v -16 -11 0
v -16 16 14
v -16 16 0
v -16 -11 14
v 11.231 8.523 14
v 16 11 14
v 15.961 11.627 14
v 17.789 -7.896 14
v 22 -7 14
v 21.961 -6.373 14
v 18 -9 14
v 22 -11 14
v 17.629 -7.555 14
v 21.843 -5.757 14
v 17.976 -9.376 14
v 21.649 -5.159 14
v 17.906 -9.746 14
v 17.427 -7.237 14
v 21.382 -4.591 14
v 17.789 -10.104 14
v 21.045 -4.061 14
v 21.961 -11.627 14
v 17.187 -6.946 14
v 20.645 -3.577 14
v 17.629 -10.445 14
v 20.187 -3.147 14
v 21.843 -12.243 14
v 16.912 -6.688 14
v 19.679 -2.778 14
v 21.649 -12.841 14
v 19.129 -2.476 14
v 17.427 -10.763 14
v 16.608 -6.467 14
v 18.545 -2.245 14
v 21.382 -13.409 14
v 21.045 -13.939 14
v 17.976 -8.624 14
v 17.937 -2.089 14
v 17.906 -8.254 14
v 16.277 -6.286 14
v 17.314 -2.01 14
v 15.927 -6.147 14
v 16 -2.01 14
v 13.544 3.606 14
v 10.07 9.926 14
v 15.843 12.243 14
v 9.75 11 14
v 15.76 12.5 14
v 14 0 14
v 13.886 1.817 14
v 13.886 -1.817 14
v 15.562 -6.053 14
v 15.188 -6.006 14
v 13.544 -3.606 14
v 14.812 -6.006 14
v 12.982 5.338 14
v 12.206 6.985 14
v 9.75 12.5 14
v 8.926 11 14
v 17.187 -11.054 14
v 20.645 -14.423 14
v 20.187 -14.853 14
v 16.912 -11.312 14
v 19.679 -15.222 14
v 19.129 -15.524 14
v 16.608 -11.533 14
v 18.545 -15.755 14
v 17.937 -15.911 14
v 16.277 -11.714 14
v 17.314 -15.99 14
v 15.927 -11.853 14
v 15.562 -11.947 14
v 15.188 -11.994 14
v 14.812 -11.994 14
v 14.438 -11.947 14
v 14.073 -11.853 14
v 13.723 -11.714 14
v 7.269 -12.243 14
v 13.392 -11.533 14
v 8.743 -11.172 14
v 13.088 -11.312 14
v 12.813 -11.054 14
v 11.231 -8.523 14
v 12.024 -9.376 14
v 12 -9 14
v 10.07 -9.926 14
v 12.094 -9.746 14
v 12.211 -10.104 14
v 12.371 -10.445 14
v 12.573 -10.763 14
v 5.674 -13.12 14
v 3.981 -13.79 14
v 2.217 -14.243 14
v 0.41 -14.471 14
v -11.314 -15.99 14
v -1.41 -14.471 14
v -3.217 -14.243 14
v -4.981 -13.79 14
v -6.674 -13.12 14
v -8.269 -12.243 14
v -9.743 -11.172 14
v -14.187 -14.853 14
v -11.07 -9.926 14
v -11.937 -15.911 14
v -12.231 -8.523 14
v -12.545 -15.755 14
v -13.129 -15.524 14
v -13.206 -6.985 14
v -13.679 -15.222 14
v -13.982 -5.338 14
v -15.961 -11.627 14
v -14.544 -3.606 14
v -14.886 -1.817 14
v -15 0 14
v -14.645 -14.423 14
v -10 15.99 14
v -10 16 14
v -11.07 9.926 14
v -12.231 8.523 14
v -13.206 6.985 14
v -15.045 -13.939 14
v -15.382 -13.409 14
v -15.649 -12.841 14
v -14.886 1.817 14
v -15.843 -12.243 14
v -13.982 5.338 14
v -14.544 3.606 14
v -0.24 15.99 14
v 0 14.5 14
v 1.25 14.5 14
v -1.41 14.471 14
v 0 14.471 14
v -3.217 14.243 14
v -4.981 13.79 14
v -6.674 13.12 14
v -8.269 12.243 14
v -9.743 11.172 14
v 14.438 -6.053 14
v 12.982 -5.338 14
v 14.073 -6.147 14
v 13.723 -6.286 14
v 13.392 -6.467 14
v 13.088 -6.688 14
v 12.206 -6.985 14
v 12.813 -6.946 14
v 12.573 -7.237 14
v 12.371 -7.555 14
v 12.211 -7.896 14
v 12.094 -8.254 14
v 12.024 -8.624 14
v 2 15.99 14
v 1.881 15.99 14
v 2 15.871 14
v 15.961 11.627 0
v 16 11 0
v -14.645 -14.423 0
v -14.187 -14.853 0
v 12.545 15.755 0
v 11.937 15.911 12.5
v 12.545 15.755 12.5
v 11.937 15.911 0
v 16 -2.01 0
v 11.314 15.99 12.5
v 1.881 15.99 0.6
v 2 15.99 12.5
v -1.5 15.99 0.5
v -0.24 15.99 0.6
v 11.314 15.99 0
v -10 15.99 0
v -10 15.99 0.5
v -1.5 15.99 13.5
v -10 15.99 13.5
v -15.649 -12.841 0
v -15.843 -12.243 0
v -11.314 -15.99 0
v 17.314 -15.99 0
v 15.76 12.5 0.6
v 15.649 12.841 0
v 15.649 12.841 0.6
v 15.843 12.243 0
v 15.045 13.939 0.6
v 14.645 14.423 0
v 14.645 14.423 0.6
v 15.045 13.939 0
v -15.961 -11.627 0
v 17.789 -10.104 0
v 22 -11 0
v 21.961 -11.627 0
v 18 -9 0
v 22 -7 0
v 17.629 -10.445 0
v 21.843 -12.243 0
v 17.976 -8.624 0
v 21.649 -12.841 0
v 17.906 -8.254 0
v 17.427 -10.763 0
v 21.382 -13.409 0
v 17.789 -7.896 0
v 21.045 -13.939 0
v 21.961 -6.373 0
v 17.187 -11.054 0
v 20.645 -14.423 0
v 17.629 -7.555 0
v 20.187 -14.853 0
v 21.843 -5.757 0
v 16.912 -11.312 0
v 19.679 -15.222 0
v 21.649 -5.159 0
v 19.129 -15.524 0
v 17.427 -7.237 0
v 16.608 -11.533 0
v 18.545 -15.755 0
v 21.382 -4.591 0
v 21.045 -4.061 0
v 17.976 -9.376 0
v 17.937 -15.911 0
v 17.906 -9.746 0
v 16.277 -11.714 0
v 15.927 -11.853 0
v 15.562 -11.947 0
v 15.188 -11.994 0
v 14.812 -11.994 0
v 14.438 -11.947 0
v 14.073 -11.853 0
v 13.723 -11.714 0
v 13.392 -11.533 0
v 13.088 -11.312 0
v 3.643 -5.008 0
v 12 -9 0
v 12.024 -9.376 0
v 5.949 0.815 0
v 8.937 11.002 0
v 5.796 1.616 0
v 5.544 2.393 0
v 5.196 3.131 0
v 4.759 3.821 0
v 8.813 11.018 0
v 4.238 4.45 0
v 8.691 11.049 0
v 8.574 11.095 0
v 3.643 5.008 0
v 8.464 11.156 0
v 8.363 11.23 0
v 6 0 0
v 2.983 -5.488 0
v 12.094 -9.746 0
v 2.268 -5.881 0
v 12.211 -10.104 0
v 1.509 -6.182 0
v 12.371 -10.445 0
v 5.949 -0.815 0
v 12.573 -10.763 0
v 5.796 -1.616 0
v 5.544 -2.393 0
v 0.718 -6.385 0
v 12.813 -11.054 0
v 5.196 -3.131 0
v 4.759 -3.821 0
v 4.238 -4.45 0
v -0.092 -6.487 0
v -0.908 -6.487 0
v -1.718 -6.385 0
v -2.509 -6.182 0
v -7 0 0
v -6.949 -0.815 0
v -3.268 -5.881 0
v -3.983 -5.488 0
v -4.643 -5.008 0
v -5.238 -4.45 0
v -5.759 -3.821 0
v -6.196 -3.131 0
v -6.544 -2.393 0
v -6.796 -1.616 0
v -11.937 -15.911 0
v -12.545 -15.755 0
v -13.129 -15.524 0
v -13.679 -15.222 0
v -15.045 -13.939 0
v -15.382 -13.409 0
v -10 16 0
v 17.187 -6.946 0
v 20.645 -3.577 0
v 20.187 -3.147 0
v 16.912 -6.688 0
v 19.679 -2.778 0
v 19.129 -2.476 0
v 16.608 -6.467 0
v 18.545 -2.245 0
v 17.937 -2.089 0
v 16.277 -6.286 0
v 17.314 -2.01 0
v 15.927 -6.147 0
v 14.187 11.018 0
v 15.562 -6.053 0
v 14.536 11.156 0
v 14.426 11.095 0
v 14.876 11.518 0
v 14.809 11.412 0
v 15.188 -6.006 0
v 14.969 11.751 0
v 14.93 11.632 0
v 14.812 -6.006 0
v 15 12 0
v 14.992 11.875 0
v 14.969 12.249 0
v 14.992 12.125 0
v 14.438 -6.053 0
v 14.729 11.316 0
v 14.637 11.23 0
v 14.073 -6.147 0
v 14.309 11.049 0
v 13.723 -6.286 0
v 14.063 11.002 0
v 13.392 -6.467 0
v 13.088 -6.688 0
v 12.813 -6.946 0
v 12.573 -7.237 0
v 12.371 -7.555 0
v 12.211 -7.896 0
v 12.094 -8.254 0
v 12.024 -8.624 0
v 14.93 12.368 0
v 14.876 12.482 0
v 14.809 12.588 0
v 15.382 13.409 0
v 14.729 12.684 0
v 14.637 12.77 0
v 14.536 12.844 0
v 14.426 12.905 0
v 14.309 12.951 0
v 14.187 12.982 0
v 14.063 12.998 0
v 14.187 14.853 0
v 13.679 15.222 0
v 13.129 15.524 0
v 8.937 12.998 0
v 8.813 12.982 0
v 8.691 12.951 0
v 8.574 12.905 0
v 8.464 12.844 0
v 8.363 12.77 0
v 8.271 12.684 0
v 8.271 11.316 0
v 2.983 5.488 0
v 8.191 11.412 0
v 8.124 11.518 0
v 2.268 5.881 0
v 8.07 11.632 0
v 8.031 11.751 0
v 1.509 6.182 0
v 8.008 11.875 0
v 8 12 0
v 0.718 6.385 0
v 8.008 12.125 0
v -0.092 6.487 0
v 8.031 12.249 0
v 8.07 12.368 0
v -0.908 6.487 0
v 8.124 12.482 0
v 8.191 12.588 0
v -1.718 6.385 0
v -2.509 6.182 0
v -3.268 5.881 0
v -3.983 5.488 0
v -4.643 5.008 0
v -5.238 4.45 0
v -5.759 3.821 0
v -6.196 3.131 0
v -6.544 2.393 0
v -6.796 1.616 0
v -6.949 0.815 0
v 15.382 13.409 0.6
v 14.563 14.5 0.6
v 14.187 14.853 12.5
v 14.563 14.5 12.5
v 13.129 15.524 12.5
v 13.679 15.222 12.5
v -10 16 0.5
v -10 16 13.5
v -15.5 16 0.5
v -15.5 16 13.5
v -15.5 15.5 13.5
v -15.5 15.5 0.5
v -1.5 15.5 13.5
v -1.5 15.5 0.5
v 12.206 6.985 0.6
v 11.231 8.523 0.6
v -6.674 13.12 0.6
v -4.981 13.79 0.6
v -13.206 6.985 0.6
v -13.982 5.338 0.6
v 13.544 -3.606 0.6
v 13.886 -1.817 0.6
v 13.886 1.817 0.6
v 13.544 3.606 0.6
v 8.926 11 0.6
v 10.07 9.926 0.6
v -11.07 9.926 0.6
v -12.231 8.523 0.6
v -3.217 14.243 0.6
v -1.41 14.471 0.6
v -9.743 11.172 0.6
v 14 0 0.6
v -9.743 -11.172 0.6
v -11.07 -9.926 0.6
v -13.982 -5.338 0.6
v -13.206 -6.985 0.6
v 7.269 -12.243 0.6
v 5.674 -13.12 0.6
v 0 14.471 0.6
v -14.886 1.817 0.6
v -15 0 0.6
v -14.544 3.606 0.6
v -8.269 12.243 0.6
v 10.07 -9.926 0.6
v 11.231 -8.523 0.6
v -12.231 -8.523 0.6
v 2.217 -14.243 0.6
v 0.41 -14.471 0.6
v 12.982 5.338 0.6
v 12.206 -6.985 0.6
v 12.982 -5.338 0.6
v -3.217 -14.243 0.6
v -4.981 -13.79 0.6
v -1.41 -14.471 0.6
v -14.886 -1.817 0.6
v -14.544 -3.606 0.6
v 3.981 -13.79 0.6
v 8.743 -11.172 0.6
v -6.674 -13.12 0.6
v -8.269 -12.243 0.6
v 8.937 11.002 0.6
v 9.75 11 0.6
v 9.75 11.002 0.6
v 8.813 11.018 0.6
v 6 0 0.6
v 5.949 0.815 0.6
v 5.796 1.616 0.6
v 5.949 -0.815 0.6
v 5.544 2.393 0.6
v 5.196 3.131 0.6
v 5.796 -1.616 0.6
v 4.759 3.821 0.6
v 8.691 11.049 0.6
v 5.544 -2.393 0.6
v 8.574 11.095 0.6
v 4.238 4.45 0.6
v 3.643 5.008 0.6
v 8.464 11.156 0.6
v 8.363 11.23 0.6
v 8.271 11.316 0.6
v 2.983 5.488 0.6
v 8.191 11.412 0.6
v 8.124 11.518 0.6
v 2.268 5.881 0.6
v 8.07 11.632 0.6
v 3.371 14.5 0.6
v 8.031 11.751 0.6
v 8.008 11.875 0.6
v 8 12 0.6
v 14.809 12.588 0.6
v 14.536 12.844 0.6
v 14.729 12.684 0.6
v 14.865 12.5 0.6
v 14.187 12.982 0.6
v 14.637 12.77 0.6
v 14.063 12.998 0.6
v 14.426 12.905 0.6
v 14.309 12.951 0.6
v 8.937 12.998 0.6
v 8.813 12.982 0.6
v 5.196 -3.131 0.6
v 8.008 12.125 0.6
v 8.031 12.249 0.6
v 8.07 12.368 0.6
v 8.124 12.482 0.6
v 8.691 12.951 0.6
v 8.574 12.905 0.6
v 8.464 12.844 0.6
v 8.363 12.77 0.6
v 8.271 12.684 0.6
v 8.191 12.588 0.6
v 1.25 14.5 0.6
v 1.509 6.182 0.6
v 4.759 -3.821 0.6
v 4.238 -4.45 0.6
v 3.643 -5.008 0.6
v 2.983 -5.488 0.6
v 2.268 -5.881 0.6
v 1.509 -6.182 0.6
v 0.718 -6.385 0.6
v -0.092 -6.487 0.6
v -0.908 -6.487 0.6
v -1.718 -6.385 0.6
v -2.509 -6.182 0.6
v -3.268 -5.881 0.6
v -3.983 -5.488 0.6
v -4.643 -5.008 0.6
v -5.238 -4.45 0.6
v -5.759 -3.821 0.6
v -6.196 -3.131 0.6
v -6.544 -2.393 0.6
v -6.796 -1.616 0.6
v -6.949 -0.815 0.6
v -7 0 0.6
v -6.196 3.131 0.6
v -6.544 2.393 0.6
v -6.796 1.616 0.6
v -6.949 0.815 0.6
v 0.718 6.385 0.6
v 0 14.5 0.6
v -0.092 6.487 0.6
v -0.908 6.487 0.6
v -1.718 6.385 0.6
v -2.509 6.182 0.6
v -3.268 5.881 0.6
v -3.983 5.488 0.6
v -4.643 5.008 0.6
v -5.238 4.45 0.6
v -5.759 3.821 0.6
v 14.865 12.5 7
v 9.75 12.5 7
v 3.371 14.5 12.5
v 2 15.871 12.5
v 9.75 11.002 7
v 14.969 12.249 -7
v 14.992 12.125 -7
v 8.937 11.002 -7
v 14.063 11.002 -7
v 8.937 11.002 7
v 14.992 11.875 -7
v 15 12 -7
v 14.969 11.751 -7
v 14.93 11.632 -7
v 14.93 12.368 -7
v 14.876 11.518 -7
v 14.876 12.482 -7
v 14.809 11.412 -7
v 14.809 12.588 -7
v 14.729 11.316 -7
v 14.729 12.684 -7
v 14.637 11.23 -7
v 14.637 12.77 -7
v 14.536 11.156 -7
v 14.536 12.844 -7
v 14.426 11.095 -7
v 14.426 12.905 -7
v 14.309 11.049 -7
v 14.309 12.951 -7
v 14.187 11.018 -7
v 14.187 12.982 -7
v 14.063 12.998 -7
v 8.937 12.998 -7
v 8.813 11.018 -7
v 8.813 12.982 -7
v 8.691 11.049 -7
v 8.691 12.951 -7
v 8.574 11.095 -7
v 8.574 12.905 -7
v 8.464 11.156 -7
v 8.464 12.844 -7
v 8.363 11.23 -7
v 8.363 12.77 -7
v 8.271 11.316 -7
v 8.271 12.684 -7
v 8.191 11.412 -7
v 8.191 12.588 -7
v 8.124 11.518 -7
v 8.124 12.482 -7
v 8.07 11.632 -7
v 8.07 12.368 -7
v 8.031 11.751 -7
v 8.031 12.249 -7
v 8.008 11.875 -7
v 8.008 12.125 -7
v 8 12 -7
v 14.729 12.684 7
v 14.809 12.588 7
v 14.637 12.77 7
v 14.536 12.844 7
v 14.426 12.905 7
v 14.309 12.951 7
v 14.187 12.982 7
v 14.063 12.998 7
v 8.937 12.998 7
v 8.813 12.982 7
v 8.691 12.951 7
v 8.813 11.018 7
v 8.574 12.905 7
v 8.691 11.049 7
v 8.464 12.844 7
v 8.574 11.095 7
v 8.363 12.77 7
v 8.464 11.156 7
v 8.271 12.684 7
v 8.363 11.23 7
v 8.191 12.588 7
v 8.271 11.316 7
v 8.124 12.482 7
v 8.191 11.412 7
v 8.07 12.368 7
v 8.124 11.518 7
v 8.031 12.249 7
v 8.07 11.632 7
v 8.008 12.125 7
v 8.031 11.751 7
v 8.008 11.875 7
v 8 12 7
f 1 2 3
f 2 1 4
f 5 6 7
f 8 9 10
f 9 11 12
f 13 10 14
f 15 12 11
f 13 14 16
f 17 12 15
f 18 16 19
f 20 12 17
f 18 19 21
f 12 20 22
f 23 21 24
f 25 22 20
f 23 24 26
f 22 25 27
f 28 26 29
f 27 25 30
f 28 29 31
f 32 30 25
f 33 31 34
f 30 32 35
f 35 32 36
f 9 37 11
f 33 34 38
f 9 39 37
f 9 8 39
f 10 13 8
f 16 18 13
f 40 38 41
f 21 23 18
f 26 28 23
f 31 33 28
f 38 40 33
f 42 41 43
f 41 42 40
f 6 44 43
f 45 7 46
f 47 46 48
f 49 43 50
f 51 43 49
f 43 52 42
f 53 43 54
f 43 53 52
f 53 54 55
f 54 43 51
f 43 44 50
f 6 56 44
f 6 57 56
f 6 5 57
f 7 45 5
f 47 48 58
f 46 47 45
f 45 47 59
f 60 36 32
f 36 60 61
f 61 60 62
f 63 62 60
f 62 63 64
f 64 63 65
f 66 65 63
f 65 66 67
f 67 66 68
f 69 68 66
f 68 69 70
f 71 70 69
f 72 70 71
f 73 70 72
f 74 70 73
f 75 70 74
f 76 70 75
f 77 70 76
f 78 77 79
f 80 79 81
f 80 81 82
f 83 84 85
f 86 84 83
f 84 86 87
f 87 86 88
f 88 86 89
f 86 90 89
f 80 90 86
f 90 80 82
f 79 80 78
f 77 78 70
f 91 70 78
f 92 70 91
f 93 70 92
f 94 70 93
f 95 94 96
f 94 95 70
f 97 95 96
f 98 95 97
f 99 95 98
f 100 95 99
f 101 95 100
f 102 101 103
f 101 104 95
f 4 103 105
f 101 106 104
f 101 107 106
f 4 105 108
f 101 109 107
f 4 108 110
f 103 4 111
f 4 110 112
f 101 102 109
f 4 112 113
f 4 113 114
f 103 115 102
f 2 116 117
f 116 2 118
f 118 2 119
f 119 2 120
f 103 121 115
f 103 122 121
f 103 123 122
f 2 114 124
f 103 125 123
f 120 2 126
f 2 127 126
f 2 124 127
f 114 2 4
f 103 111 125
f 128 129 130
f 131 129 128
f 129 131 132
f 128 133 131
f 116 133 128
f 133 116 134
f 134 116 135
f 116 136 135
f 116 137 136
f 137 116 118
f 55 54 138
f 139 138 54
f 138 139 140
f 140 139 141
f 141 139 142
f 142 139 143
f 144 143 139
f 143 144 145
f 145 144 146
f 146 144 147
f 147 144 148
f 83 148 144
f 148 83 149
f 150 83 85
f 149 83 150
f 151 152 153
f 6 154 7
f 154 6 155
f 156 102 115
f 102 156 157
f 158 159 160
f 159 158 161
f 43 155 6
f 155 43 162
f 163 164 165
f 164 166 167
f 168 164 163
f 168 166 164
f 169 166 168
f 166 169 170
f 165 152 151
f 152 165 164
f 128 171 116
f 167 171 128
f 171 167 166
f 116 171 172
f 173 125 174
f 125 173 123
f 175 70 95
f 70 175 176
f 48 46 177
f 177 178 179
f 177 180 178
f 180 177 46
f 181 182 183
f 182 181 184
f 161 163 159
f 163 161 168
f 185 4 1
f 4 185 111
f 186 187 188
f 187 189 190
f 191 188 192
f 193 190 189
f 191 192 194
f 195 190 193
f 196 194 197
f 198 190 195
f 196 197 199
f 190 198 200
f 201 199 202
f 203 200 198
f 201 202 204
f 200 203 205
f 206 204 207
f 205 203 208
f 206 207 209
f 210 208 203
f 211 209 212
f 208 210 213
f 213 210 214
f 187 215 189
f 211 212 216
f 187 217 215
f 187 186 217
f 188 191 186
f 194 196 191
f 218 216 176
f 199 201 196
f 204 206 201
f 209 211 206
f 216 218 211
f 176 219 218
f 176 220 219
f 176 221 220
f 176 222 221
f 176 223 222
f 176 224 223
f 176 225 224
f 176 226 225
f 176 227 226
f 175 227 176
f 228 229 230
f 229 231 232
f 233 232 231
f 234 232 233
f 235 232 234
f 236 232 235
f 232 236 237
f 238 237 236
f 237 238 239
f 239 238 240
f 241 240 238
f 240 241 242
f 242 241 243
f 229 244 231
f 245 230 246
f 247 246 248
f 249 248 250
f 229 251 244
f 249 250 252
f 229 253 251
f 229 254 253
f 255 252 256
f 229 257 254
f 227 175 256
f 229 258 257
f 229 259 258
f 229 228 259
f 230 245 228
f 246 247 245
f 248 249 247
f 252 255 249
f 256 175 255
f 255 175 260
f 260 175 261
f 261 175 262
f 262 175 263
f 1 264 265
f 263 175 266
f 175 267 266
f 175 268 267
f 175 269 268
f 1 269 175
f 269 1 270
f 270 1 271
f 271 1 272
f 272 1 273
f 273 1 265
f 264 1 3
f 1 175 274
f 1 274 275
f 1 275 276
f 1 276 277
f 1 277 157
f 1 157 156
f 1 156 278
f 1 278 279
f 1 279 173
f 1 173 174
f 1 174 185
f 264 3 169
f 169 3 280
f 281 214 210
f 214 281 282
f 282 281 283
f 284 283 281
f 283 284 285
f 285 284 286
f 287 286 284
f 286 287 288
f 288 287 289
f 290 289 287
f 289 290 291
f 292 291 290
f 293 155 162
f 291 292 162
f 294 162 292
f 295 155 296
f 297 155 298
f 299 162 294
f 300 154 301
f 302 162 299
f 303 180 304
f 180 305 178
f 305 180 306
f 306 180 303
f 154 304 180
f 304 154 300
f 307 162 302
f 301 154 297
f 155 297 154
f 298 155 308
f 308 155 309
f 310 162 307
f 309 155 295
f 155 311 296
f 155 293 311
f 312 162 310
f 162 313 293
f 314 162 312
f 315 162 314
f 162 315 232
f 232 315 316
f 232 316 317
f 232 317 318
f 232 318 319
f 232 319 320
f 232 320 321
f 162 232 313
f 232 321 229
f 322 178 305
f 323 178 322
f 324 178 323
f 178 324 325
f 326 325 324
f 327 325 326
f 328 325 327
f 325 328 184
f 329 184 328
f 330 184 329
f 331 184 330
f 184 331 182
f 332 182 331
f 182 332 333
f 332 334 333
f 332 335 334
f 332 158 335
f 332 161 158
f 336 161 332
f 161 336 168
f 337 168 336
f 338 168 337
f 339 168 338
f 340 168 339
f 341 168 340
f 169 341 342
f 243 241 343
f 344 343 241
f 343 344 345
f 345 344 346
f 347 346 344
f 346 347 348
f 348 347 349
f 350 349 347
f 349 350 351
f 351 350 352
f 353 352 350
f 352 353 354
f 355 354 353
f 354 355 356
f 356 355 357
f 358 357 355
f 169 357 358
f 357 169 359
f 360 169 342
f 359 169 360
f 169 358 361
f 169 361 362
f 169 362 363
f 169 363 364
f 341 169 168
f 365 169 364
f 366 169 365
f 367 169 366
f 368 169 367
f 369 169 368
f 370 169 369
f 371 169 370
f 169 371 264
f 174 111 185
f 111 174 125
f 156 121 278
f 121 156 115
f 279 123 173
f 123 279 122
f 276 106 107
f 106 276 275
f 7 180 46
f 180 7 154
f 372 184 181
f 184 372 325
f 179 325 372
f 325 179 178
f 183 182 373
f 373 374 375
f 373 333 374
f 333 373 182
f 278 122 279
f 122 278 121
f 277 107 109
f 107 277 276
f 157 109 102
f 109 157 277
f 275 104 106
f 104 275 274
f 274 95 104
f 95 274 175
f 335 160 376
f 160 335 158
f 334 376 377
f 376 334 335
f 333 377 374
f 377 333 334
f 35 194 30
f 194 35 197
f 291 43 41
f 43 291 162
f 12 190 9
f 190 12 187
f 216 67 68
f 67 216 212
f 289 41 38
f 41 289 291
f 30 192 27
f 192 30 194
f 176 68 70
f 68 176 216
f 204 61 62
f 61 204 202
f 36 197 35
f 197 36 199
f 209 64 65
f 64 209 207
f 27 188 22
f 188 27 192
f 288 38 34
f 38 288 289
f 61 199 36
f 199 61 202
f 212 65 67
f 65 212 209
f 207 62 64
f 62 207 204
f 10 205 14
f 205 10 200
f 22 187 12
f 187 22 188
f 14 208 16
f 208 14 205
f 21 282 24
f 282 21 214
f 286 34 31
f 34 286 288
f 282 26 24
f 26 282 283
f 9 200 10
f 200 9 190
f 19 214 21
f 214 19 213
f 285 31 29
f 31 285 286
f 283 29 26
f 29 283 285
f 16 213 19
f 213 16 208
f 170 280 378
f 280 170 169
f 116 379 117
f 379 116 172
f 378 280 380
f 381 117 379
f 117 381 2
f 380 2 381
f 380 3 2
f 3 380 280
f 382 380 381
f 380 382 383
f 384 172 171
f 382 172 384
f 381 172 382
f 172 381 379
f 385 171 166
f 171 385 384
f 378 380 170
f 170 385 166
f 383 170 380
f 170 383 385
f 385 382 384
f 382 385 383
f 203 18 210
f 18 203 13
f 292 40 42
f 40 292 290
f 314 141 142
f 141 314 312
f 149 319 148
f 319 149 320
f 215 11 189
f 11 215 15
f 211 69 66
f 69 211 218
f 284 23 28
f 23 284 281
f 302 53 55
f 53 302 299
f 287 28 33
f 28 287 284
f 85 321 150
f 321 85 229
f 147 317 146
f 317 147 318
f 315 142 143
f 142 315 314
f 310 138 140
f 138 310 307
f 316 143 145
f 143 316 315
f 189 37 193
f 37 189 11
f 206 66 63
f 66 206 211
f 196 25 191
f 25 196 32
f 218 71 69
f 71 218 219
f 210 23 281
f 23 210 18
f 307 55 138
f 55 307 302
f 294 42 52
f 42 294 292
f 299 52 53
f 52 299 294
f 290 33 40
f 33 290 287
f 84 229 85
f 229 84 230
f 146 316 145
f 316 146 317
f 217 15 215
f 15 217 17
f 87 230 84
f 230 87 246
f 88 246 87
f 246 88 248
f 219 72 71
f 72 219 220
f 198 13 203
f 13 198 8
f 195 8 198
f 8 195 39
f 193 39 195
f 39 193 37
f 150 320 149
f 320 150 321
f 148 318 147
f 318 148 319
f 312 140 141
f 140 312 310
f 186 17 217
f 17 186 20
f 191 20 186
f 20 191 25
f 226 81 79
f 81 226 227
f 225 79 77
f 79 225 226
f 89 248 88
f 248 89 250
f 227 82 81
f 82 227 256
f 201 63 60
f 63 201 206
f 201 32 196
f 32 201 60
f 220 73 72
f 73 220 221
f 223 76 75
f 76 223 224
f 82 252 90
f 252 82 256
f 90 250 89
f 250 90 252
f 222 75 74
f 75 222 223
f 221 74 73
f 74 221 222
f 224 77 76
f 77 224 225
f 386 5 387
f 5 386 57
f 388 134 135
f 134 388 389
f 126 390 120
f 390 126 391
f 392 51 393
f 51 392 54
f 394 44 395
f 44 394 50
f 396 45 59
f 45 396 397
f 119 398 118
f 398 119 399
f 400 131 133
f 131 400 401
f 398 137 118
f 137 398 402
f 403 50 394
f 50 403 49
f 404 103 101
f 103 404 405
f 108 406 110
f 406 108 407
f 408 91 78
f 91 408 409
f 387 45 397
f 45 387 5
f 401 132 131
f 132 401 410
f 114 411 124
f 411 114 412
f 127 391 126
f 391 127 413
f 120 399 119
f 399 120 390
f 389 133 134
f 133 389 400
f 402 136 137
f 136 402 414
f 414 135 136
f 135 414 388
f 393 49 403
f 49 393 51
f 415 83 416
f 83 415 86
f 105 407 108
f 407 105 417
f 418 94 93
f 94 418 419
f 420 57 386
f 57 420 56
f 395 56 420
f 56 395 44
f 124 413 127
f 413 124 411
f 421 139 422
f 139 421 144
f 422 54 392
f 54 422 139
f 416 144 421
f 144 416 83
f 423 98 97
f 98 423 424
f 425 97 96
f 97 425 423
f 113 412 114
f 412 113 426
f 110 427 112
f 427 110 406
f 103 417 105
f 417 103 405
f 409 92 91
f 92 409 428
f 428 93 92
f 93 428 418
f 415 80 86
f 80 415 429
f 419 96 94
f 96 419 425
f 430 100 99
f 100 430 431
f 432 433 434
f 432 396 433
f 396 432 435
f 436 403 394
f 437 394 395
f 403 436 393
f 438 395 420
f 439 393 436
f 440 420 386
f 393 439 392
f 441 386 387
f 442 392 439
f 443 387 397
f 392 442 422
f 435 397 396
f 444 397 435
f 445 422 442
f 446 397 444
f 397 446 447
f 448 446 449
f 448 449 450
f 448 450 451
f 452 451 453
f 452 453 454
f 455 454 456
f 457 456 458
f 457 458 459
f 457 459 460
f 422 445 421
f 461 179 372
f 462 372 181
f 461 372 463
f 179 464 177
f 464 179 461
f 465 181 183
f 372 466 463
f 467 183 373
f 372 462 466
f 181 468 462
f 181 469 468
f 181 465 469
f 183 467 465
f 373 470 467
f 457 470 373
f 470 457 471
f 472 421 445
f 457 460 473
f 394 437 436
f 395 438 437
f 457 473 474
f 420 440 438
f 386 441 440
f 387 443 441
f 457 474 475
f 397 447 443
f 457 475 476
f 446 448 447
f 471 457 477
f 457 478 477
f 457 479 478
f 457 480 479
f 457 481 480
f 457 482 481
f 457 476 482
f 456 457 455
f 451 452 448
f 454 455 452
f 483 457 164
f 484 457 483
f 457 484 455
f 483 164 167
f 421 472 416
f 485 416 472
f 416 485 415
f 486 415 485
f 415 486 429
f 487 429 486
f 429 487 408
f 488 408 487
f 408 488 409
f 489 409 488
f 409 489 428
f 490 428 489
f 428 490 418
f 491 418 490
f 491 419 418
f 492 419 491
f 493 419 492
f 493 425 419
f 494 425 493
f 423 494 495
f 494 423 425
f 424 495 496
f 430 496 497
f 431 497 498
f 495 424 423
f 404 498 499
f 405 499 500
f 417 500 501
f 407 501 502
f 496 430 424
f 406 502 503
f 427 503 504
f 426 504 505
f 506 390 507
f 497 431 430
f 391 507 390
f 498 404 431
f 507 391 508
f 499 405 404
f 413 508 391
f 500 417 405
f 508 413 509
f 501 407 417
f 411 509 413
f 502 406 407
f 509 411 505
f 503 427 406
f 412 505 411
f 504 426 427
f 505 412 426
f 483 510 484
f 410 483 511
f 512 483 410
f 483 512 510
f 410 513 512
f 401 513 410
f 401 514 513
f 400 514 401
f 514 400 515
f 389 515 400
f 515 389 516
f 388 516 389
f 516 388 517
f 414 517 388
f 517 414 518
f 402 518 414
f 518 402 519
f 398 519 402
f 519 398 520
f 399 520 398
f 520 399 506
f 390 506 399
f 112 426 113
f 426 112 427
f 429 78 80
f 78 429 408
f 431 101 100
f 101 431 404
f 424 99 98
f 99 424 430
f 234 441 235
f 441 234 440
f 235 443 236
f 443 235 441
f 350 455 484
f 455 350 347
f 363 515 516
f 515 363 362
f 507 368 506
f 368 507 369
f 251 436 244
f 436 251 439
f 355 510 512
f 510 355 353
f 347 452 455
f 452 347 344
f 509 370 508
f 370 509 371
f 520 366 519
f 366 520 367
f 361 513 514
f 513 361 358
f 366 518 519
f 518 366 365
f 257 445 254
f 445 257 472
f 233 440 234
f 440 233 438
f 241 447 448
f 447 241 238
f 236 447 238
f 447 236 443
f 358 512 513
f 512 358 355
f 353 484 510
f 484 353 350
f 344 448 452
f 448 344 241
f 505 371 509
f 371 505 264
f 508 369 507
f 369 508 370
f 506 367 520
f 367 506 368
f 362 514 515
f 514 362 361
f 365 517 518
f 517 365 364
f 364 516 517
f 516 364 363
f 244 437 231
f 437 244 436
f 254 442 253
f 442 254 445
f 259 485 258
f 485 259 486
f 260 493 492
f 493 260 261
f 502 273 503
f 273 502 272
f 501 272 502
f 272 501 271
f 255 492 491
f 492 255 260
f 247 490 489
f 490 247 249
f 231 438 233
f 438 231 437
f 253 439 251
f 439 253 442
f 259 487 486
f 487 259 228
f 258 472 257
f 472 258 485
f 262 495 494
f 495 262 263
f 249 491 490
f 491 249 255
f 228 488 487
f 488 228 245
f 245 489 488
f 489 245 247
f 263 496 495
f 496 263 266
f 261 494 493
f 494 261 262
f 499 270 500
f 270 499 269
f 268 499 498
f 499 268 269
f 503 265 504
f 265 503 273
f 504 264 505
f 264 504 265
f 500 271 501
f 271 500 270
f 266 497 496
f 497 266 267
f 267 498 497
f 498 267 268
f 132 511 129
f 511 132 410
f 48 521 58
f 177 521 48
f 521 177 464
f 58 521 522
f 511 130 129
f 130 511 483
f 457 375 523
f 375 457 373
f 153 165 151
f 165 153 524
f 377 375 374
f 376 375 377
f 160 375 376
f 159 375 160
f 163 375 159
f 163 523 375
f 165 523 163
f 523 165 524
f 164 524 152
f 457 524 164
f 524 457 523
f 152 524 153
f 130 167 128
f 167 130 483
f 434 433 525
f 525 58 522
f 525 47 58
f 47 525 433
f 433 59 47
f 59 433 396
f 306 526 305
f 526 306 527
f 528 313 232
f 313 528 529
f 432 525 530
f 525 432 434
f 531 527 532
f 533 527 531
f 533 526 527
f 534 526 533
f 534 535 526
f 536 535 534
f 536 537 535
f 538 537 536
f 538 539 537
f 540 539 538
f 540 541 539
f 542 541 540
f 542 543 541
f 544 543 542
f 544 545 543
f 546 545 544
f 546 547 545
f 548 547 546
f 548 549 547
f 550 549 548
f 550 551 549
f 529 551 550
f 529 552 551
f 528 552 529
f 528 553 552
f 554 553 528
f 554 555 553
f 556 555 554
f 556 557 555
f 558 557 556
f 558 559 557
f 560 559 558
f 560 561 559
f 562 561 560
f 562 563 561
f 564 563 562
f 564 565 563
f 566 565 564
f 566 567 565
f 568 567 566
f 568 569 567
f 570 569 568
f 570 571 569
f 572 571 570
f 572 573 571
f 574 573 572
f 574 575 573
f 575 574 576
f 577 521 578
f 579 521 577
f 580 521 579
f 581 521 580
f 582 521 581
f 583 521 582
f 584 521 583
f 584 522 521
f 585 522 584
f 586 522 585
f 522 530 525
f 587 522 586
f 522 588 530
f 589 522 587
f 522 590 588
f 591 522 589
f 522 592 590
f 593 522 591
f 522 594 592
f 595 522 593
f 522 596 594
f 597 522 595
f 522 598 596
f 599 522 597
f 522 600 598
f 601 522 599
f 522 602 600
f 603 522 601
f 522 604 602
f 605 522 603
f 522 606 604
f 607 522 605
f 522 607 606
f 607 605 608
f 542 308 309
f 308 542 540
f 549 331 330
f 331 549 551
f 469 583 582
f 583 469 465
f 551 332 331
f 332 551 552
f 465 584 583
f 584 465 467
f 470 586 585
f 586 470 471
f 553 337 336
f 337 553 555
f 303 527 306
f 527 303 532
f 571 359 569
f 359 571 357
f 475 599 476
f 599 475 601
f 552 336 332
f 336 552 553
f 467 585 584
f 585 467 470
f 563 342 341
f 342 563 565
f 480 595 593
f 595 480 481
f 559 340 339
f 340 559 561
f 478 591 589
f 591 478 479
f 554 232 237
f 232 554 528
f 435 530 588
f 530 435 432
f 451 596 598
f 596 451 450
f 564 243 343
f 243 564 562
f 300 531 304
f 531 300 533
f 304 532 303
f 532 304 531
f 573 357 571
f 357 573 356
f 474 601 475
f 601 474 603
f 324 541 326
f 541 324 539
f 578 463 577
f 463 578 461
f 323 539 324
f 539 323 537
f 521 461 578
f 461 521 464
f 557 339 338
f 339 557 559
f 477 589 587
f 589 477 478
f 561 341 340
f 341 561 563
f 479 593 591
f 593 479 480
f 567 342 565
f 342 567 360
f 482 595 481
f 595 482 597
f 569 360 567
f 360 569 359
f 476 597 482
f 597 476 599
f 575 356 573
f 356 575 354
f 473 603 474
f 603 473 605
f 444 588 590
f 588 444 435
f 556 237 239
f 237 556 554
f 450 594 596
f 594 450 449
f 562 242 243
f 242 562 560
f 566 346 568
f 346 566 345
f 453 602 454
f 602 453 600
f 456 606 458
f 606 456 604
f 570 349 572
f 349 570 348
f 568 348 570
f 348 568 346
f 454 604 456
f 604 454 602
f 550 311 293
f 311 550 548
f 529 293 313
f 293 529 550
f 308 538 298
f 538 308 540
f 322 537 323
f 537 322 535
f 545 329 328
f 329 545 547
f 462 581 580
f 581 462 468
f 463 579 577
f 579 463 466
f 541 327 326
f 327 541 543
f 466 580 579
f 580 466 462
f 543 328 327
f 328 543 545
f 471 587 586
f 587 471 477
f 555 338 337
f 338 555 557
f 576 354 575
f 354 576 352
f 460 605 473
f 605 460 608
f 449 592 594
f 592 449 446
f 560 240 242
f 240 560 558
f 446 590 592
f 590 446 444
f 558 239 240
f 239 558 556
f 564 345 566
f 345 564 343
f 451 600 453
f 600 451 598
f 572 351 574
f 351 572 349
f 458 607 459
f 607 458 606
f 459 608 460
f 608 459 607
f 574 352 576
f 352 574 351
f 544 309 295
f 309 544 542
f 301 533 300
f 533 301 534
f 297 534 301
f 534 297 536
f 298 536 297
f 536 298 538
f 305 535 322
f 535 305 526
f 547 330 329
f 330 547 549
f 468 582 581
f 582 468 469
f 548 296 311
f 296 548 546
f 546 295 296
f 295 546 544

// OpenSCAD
$fn = 50;


union() {
	difference() {
		union() {
			hull() {
				translate(v = [-11.0000000000, 11.0000000000, 0]) {
					cylinder(h = 14, r = 5);
				}
				translate(v = [11.0000000000, 11.0000000000, 0]) {
					cylinder(h = 14, r = 5);
				}
				translate(v = [-11.0000000000, -11.0000000000, 0]) {
					cylinder(h = 14, r = 5);
				}
				translate(v = [11.0000000000, -11.0000000000, 0]) {
					cylinder(h = 14, r = 5);
				}
			}
			translate(v = [7.5000000000, -9.0000000000, 0]) {
				hull() {
					translate(v = [-9.5000000000, 2.0000000000, 0]) {
						cylinder(h = 14, r = 5);
					}
					translate(v = [9.5000000000, 2.0000000000, 0]) {
						cylinder(h = 14, r = 5);
					}
					translate(v = [-9.5000000000, -2.0000000000, 0]) {
						cylinder(h = 14, r = 5);
					}
					translate(v = [9.5000000000, -2.0000000000, 0]) {
						cylinder(h = 14, r = 5);
					}
				}
			}
			translate(v = [-16.0000000000, 10.0000000000, 0]) {
				cube(size = [6, 6, 14]);
			}
		}
		union() {
			translate(v = [-15.5000000000, 15.5000000000, 0.5000000000]) {
				cube(size = [14, 0.5000000000, 13.0000000000]);
			}
			translate(v = [15.0000000000, -9.0000000000, -100.0000000000]) {
				cylinder(h = 200, r = 3.0000000000);
			}
			translate(v = [-0.5000000000, 0.0000000000, 0.6000000000]) {
				cylinder(h = 16.4000000000, r = 14.5000000000);
			}
			translate(v = [-0.5000000000, 0.0000000000, -7.0000000000]) {
				cylinder(h = 14, r = 6.5000000000);
			}
			translate(v = [0.0000000000, 12.5000000000, 0.6000000000]) {
				cube(size = [16.0000000000, 2, 16.4000000000]);
			}
			translate(v = [2.0000000000, 12.5000000000, 12.5000000000]) {
				cube(size = [14.0000000000, 5, 1.5000000000]);
			}
			translate(v = [-3.0000000000, 18.7500000000, 0.6000000000]) {
				rotate(a = [0, 0, -45]) {
					cube(size = [10, 1.5000000000, 16.4000000000]);
				}
			}
			translate(v = [2.2500000000, 11.0000000000, 0.6000000000]) {
				cube(size = [7.5000000000, 2, 13.4000000000]);
			}
		}
	}
	union() {
		translate(v = [11.5000000000, 12, -7.0000000000]) {
			rotate(a = [0, 0, 0]) {
				difference() {
					union() {
						hull() {
							translate(v = [2.5000000000, 0, 0]) {
								cylinder(h = 14, r = 1.0000000000, r1 = 1.0000000000, r2 = 1.0000000000);
							}
							translate(v = [-2.5000000000, 0, 0]) {
								cylinder(h = 14, r = 1.0000000000, r1 = 1.0000000000, r2 = 1.0000000000);
							}
						}
					}
					union();
				}
			}
		}
	}
}
